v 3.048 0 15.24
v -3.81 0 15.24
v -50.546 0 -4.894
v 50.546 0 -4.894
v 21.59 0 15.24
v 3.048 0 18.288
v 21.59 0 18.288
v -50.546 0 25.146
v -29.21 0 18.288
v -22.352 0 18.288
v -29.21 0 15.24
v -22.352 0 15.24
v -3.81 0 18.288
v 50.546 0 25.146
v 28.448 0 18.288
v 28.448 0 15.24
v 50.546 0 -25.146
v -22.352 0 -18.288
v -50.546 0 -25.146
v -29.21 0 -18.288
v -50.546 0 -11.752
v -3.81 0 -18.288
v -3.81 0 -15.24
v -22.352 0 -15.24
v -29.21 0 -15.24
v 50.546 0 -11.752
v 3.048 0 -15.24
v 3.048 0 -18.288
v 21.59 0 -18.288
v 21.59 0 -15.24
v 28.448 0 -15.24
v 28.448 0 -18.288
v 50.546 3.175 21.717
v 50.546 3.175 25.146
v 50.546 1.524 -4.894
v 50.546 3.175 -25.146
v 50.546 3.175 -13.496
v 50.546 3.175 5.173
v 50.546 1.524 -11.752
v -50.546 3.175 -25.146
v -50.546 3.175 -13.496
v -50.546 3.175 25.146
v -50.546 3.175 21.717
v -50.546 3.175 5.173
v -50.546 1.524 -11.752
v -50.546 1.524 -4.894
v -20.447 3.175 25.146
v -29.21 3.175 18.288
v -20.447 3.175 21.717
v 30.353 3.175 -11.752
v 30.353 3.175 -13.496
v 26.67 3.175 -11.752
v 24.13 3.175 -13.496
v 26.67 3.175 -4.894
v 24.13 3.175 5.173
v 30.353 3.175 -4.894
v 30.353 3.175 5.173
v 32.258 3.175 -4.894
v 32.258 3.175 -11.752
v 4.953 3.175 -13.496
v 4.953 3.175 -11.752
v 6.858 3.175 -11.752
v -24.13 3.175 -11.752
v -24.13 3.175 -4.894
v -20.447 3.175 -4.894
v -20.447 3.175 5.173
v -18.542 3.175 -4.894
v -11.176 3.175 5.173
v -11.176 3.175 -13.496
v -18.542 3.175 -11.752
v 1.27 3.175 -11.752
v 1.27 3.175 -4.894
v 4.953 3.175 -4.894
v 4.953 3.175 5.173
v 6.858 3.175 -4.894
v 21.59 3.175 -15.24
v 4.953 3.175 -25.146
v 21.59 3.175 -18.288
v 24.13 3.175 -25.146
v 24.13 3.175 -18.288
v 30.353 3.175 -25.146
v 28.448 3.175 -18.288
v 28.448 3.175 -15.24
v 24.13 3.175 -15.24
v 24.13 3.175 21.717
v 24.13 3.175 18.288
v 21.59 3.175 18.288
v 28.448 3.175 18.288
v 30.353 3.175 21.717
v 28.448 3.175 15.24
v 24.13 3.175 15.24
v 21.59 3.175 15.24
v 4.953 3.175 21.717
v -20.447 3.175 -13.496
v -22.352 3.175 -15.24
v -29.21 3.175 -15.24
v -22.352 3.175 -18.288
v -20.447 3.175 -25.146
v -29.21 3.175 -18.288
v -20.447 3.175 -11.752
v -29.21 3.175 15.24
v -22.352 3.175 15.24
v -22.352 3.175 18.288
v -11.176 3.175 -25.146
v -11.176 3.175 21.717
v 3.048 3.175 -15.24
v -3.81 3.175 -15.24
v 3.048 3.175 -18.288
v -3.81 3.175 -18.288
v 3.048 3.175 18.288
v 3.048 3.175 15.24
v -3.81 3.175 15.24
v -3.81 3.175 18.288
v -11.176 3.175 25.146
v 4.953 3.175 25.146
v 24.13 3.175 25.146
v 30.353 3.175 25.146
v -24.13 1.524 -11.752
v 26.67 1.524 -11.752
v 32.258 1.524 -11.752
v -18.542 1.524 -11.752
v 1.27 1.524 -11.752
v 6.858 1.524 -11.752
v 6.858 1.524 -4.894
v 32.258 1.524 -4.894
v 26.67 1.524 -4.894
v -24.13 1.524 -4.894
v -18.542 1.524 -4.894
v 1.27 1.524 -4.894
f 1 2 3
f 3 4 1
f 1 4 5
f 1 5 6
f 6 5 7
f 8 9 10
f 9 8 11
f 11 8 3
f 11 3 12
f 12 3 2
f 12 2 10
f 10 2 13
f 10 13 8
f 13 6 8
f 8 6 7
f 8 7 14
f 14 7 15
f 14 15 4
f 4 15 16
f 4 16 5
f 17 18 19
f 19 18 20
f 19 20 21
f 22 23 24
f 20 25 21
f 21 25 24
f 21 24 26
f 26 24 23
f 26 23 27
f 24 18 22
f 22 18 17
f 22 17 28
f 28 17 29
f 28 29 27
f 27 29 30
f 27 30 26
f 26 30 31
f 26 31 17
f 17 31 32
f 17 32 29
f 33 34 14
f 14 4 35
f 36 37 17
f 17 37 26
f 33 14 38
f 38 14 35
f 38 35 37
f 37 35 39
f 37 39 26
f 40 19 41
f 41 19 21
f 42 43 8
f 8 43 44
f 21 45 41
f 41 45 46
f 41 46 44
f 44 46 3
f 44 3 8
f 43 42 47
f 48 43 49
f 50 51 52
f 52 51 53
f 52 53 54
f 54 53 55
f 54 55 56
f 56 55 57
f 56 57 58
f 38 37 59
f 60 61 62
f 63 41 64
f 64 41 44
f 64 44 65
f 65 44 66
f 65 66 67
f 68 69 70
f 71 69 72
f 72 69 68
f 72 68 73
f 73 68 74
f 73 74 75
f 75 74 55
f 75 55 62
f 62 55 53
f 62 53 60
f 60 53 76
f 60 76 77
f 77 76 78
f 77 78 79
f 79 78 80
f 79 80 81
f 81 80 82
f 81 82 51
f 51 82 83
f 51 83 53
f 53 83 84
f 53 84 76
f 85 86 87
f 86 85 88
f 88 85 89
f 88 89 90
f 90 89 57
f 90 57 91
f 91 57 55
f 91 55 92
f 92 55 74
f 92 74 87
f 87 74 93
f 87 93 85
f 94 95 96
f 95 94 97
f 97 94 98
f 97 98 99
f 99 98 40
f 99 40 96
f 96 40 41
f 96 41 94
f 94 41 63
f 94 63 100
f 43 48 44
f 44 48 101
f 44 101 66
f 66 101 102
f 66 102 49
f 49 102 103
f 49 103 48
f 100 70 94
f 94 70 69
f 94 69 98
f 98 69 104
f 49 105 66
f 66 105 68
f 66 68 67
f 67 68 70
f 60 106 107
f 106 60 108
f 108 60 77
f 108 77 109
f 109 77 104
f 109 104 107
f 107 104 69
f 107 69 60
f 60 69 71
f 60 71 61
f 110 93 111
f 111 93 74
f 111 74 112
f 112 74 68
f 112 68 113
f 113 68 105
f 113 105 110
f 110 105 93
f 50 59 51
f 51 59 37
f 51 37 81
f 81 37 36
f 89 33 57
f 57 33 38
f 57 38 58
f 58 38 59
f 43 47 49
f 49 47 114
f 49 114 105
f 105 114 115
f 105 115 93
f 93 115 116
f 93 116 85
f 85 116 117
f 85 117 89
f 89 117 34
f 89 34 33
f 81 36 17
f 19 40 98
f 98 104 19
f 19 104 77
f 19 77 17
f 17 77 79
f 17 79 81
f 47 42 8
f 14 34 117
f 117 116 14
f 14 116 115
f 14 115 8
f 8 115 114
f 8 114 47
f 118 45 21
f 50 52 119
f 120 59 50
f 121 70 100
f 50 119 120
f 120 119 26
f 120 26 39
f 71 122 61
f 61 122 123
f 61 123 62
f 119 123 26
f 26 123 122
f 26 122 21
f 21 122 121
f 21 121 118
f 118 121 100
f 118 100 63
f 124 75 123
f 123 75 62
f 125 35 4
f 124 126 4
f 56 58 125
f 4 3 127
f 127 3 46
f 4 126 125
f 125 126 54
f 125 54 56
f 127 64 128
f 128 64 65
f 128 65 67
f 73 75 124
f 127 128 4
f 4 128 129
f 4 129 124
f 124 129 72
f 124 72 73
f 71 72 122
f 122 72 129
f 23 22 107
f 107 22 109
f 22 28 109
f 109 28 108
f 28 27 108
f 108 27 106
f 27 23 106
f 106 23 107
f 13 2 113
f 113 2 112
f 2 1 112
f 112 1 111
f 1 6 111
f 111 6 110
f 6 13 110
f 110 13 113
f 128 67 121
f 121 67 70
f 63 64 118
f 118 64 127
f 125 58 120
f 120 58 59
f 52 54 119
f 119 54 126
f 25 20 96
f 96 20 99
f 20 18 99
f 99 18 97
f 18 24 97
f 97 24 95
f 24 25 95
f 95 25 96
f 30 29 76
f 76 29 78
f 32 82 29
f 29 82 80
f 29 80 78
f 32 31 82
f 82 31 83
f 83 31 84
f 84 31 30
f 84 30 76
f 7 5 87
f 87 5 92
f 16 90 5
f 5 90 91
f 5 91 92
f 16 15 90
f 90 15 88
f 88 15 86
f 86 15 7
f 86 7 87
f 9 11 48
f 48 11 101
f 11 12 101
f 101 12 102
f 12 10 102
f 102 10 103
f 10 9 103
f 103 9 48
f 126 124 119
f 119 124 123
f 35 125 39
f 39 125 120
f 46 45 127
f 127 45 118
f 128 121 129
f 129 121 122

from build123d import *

# Parameters (mm, degrees)
SKETCH1_W                     = 101.092
SKETCH1_H                     = 50.292
BOSS_EXTRUDE1_DEPTH           = 3.175
SKETCH2_W                     = 5.588
SKETCH2_H                     = 6.858
WIRE_HOLE_DEPTH               = 4.175
SKETCH3_W                     = 6.858
SKETCH3_H                     = 3.048
CUT_EXTRUDE2_DEPTH            = 4.175
LPATTERN1_COUNT               = 2
LPATTERN1_PITCH               = 25.4
LPATTERN1_COPY_1_SKETCH_W     = 6.858
LPATTERN1_COPY_1_SKETCH_H     = 3.048
LPATTERN1_COPY_1_DEPTH        = 4.175
LPATTERN1_COL_COUNT           = 2
LPATTERN1_COL_PITCH           = 25.4
LPATTERN1_COL_COPY_1_SKETCH_W = 6.858
LPATTERN1_COL_COPY_1_SKETCH_H = 3.048
LPATTERN1_COL_COPY_1_DEPTH    = 4.175
SKETCH4_W                     = 101.092
SKETCH4_H                     = 6.858
CUT_EXTRUDE3_DEPTH            = 1.524


with BuildPart() as part:
    # Sketch1 → Boss-Extrude1 (new body)
    with BuildSketch(Plane(origin=(0, 0, 0), x_dir=(1, 0, 0), z_dir=(0, 1, 0))):
        Rectangle(SKETCH1_W, SKETCH1_H)
    extrude(amount=BOSS_EXTRUDE1_DEPTH)

    # Sketch2 → Wire Hole (cut, through all)
    with BuildSketch(Plane(origin=(0, 3.175, 0), x_dir=(1, 0, 0), z_dir=(0, 1, 0))):
        with Locations((4.064, 8.322545685)):
            Rectangle(SKETCH2_W, SKETCH2_H)
    wire_hole = extrude(amount=-WIRE_HOLE_DEPTH, mode=Mode.SUBTRACT)

    # Sketch3 → Cut-Extrude2 (cut, through all)
    with BuildSketch(Plane(origin=(0, 3.175, 0), x_dir=(1, 0, 0), z_dir=(0, 1, 0))):
        with Locations((-0.381, 16.764)):
            Rectangle(SKETCH3_W, SKETCH3_H)
    cut_extrude2 = extrude(amount=-CUT_EXTRUDE2_DEPTH, mode=Mode.SUBTRACT)

    # Mirror1: Cut-Extrude2 across plane
    add(cut_extrude2.mirror(Plane.XY), mode=Mode.SUBTRACT)

    # LPattern1: Wire Hole, Cut-Extrude2 ×2
    with Locations(*[(-i * LPATTERN1_PITCH, 0, 0) for i in range(1, LPATTERN1_COUNT)]):
        add(wire_hole, mode=Mode.SUBTRACT)
        add(cut_extrude2, mode=Mode.SUBTRACT)

    # LPattern1 copy 1 sketch → LPattern1 copy 1 (cut, through all)
    with BuildSketch(Plane(origin=(-25.4, 3.175, 0), x_dir=(1, 0, 0), z_dir=(0, 1, 0))):
        with Locations((-0.381, -16.764)):
            Rectangle(LPATTERN1_COPY_1_SKETCH_W, LPATTERN1_COPY_1_SKETCH_H)
    extrude(amount=-LPATTERN1_COPY_1_DEPTH, mode=Mode.SUBTRACT)

    # LPattern1 col: Wire Hole, Cut-Extrude2 ×2
    with Locations(*[(i * LPATTERN1_COL_PITCH, 0, 0) for i in range(1, LPATTERN1_COL_COUNT)]):
        add(wire_hole, mode=Mode.SUBTRACT)
        add(cut_extrude2, mode=Mode.SUBTRACT)

    # LPattern1 col copy 1 sketch → LPattern1 col copy 1 (cut, through all)
    with BuildSketch(Plane(origin=(25.4, 3.175, 0), x_dir=(1, 0, 0), z_dir=(0, 1, 0))):
        with Locations((-0.381, -16.764)):
            Rectangle(LPATTERN1_COL_COPY_1_SKETCH_W, LPATTERN1_COL_COPY_1_SKETCH_H)
    extrude(amount=-LPATTERN1_COL_COPY_1_DEPTH, mode=Mode.SUBTRACT)

    # Sketch4 → Cut-Extrude3 (cut)
    with BuildSketch(Plane(origin=(0, 0, 0), x_dir=(1, 0, 0), z_dir=(0, 1, 0))):
        with Locations((0, 8.322545685)):
            Rectangle(SKETCH4_W, SKETCH4_H)
    extrude(amount=CUT_EXTRUDE3_DEPTH, mode=Mode.SUBTRACT)


solid = part.part
